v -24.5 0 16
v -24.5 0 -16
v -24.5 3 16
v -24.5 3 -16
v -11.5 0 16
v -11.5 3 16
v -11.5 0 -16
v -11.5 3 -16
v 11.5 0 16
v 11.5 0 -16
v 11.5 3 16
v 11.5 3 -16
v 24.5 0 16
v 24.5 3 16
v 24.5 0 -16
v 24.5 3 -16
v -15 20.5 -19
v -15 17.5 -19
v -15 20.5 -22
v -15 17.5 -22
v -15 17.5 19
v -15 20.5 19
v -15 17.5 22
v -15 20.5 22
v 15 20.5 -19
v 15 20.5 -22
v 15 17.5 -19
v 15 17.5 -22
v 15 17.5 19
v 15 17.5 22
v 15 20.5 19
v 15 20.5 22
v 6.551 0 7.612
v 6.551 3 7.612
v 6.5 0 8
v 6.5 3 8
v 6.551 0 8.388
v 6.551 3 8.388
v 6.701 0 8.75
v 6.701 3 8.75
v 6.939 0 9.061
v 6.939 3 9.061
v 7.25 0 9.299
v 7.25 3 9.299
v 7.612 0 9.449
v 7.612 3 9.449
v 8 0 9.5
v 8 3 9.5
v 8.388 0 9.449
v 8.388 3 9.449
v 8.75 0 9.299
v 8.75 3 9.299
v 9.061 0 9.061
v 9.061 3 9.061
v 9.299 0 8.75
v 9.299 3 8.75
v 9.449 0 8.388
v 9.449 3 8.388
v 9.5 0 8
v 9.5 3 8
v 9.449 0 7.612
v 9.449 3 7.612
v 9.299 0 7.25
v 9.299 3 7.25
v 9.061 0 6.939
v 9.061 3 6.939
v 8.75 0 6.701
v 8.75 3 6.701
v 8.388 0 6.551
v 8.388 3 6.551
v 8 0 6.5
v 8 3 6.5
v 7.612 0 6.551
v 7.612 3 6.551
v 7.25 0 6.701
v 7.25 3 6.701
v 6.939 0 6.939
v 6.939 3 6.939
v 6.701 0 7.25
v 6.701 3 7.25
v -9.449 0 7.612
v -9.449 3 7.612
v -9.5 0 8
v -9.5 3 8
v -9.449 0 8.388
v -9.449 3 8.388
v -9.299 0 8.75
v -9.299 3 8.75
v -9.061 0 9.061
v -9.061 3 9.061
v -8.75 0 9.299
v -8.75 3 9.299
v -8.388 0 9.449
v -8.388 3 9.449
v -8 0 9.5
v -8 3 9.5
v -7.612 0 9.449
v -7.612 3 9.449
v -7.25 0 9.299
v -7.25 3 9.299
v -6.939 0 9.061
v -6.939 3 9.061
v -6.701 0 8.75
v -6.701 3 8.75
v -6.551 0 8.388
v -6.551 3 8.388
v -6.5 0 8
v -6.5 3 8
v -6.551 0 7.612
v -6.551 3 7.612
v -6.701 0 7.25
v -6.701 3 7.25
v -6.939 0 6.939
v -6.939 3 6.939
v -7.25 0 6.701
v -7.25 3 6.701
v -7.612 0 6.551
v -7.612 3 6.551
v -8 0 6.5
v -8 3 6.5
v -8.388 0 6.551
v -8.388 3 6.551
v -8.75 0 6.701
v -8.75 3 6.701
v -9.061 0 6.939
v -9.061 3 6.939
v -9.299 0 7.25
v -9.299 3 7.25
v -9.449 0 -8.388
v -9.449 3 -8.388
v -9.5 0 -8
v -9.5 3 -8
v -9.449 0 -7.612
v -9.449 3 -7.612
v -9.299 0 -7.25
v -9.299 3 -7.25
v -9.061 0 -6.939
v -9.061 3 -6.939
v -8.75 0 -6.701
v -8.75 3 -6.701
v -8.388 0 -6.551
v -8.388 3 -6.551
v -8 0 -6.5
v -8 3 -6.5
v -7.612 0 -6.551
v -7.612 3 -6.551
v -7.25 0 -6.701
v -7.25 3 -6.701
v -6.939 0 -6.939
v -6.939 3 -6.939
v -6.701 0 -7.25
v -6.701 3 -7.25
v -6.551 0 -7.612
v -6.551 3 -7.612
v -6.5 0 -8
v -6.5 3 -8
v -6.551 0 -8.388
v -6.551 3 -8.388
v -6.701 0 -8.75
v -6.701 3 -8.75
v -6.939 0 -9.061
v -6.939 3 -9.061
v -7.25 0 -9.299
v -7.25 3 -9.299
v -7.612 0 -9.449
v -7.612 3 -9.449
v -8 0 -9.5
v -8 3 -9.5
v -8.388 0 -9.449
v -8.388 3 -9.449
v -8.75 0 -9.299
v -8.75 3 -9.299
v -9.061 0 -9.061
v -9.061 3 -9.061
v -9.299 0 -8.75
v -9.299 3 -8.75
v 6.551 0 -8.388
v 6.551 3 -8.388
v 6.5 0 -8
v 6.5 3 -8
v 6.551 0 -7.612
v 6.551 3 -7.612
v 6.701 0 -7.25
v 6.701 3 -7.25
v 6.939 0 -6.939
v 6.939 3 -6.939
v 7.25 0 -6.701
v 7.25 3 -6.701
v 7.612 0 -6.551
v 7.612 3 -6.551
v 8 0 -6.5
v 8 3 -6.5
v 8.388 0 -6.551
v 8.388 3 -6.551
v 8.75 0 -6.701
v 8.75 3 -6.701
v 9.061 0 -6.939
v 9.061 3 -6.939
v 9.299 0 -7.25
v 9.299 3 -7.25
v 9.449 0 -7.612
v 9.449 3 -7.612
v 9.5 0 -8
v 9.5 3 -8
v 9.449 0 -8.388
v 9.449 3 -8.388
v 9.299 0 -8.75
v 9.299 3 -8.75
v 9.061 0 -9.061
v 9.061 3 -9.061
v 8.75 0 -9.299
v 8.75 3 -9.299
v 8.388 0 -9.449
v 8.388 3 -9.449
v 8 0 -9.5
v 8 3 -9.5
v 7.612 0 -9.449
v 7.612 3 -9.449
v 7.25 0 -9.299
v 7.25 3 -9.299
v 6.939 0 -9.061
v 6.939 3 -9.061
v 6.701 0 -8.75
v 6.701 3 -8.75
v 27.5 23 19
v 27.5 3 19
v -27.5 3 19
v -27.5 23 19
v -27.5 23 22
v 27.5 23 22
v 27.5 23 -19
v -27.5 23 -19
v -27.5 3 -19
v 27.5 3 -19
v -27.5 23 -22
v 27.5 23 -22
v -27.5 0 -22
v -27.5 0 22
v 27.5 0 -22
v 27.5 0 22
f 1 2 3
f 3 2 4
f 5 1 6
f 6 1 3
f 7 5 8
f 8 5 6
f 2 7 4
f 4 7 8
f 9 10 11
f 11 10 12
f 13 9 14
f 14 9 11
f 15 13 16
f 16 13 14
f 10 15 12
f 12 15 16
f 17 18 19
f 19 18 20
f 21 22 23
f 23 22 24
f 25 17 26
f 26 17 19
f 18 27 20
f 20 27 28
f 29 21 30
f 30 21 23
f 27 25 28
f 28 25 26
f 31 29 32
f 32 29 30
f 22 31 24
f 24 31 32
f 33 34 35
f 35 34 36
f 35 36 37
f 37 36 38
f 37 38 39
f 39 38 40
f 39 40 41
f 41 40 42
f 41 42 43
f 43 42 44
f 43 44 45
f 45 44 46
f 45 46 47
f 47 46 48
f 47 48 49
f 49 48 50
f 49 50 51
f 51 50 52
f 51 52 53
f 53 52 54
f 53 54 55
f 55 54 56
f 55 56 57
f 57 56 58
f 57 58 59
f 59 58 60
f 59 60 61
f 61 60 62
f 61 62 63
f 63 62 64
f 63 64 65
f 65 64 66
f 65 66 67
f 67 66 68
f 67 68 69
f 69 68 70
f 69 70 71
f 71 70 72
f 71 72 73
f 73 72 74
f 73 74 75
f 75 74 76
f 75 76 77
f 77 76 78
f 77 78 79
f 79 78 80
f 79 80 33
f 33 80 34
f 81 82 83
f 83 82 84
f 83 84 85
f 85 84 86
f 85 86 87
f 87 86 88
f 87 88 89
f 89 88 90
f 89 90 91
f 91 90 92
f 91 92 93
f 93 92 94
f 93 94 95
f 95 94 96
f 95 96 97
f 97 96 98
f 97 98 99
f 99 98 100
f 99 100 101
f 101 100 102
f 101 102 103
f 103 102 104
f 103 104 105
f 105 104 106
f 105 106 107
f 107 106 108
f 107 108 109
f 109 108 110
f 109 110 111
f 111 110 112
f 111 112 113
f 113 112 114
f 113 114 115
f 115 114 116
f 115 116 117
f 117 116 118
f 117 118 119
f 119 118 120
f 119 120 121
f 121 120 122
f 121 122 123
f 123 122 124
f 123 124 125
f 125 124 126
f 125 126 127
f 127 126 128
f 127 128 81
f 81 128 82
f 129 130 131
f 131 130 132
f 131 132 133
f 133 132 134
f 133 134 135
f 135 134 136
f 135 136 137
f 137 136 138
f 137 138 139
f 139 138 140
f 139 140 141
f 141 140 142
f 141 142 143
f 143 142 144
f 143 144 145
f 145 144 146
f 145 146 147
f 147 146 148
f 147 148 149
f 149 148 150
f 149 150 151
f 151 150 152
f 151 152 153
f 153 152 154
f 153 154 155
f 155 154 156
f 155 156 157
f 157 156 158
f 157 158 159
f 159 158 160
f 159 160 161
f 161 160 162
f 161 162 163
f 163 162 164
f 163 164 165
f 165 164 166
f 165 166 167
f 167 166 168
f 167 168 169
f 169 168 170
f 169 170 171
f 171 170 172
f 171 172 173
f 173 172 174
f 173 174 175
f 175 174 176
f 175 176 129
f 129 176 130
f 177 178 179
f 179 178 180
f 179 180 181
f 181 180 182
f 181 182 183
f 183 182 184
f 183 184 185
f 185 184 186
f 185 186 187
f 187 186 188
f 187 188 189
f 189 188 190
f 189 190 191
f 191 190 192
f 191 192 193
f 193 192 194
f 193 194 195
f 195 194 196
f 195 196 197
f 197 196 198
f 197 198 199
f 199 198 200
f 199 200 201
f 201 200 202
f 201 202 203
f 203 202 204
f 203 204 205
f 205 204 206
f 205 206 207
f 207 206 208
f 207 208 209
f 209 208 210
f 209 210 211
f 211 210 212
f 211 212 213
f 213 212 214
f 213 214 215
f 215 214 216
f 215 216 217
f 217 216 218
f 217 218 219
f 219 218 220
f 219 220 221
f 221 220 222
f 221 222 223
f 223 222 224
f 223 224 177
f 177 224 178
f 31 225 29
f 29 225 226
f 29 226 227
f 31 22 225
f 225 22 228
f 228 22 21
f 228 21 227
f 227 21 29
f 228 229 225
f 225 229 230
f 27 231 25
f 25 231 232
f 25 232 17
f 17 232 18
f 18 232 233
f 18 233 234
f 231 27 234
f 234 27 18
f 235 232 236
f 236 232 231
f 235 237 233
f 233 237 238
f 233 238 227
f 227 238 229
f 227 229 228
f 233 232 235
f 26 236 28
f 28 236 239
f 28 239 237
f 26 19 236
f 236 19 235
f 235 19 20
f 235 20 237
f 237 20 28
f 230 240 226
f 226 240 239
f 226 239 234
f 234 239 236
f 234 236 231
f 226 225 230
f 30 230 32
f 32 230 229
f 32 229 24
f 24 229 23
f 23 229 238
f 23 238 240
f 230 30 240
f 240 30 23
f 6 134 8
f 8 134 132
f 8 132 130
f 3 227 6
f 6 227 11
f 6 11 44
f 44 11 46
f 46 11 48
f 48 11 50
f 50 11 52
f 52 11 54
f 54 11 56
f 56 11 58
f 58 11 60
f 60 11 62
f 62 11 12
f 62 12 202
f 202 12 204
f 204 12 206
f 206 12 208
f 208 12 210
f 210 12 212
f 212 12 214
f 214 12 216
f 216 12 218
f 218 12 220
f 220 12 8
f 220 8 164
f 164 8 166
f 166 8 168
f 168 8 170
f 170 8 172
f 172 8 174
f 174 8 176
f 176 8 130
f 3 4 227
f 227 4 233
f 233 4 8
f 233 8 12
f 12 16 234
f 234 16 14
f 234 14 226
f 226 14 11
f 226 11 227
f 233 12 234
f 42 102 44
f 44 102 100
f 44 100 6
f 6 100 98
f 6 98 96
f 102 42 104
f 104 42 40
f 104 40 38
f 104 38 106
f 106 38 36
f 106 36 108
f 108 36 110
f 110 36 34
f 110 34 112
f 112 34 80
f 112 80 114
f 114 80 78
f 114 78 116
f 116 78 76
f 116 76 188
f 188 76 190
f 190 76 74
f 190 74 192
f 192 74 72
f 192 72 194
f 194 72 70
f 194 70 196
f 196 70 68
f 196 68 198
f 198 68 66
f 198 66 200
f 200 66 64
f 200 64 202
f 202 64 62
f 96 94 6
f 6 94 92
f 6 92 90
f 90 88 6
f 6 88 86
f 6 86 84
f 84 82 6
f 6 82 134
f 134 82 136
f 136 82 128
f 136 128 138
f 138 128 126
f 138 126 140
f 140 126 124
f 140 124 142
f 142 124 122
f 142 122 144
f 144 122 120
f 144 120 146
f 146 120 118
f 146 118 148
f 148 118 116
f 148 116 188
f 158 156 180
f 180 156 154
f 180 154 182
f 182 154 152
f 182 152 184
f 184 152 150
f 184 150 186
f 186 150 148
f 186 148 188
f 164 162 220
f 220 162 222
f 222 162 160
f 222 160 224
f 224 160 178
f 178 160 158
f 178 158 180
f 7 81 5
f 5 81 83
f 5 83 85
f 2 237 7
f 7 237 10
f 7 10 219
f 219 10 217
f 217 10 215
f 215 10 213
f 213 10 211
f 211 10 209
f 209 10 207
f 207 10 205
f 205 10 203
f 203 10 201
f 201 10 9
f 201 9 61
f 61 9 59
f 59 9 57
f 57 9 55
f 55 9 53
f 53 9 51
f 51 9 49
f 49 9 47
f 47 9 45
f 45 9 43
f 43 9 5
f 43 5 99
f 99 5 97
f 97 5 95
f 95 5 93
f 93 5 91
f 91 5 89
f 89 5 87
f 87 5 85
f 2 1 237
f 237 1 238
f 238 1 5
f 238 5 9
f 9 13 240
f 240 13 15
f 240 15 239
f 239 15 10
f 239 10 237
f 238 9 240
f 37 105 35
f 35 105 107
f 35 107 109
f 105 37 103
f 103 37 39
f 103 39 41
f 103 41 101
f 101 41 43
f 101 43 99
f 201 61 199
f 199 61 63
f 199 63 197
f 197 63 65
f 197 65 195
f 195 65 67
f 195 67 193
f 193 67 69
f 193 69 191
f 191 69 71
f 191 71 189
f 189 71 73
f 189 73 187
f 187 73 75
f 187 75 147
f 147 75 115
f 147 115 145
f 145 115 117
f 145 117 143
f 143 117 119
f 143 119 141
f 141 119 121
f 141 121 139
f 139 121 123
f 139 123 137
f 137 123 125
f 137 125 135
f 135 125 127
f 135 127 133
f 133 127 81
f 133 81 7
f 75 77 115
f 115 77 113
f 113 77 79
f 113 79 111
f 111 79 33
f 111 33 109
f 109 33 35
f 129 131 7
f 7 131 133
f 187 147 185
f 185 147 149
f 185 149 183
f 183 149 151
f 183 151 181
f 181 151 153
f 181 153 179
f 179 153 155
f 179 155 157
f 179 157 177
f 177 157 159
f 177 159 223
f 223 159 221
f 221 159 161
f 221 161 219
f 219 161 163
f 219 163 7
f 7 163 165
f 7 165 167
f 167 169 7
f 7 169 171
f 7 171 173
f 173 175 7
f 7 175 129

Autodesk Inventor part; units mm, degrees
ref_plane "YZ Plane" through (0, 0, 0) normal (1, 0, 0) x (0, 1, 0)
ref_plane "XZ Plane" through (0, 0, 0) normal (0, 1, 0) x (-1, 0, 0)
ref_plane "XY Plane" through (0, 0, 0) normal (0, 0, 1) x (1, 0, 0)
sketch "Szkic1" plane through (0, 0, 0) normal (0, 1, 0) x (-1, 0, 0)
  line L0 (27.5, 22) -> (-27.5, 22)
  line L1 (-27.5, 22) -> (-27.5, -22)
  line L2 (-27.5, -22) -> (27.5, -22)
  line L3 (27.5, -22) -> (27.5, 22)
  line L4 (27.5, 22) -> (-27.5, -22) construction
  line L5 (-27.5, 22) -> (27.5, -22) construction
  point P0 (0, 0)
  dimension "d0" = 55
  dimension "d1" = 44
extrude "Wyciągnięcie proste1" add sketch "Szkic1" along normal blind 3
sketch "Szkic2" plane through (0, 3, 0) normal (0, 1, 0) x (1, 0, 0)
  line L0 (27.5, 22) -> (-27.5, 22) projected
  line L1 (27.5, -22) -> (27.5, 22) projected
  line L2 (-27.5, 22) -> (27.5, 22)
  line L3 (27.5, 22) -> (27.5, 19)
  line L4 (27.5, 19) -> (-27.5, 19)
  line L5 (-27.5, 19) -> (-27.5, 22)
  line L6 (-27.5, 22) -> (-27.5, -22) projected
  line L7 (27.5, -22) -> (-27.5, -22)
  line L8 (-27.5, -22) -> (-27.5, -19)
  line L9 (-27.5, -19) -> (27.5, -19)
  line L10 (27.5, -19) -> (27.5, -22)
  point P0 (0, 0)
  dimension "d4" = 3
  dimension "d5" = 3
extrude "Wyciągnięcie proste2" add sketch "Szkic2" along normal blind 20 contours L1 L4 L5 L0 | L1 L7 L6 L9
sketch "Szkic4" plane through (0, 3, 0) normal (0, 1, 0) x (1, 0, 0)
  line L0 (-27.5, 19) -> (-27.5, -19) projected
  line L1 (-27.5, 0) -> (27.5, 0) construction
  line L2 (27.5, -19) -> (27.5, 19) projected
  line L3 (-27.5, -22) -> (27.5, -22) projected
  line L4 (0, -22) -> (0, 22) construction
  line L5 (27.5, 22) -> (-27.5, 22) projected
  point P0 (0, 0)
  point P1 (-8, -8)
  point P2 (-8, 8)
  point P3 (8, -8)
  point P4 (8, 8)
  dimension "d13" = 8
  dimension "d16" = 8
hole "Otwór1" at (-8, 3, 8) at (-8, 3, -8) at (8, 3, 8) at (8, 3, -8) direction (0, -1, 0) diameter 3 depth 8 tip angle 118
sketch "Szkic5" plane through (0, 3, 0) normal (0, 1, 0) x (1, 0, 0)
  line L0 (-24.5, -16) -> (-11.5, -16)
  line L1 (-11.5, -16) -> (-11.5, 16)
  line L2 (-11.5, 16) -> (-24.5, 16)
  line L3 (-24.5, 16) -> (-24.5, -16)
  line L4 (27.5, -19) -> (-27.5, -19) projected
  line L5 (27.5, 19) -> (-27.5, 19) projected
  line L6 (-27.5, 22) -> (-27.5, -22) projected
  line L7 (-27.5, -22) -> (27.5, -22) projected
  line L8 (0, -22) -> (0, 22) construction
  line L9 (27.5, 22) -> (-27.5, 22) projected
  line L10 (24.5, -16) -> (11.5, -16)
  line L11 (11.5, -16) -> (11.5, 16)
  line L12 (11.5, 16) -> (24.5, 16)
  line L13 (24.5, 16) -> (24.5, -16)
  point P0 (0, 0)
  dimension "d27" = 3
  dimension "d28" = 3
  dimension "d29" = 3
  dimension "d30" = 13
sketch "Szkic6" plane through (-27.5, 0, 22) normal (0, 0, 1) x (1, 0, 0)
  line L0 (12.5, 17.5) -> (42.5, 17.5)
  line L1 (42.5, 17.5) -> (42.5, 20.5)
  line L2 (42.5, 20.5) -> (12.5, 20.5)
  line L3 (12.5, 20.5) -> (12.5, 17.5)
  line L4 (12.5, 17.5) -> (42.5, 20.5) construction
  line L5 (42.5, 17.5) -> (12.5, 20.5) construction
  line L6 (55, 23) -> (0, 23) projected
  line L7 (55, 0) -> (55, 23) projected
  point P0 (27.5, 0)
  point P1 (27.5, 19)
  dimension "d33" = 30
  dimension "d34" = 3
  dimension "d35" = 4
  dimension "d36" = 27.5
extrude "Wyciągnięcie proste4" cut sketch "Szkic6" against normal through all
extrude "Wyciągnięcie proste5" cut sketch "Szkic5" against normal blind 10
properties part number "Li-Pol_uchwyt" material "Tworzywo sztuczne PET"
